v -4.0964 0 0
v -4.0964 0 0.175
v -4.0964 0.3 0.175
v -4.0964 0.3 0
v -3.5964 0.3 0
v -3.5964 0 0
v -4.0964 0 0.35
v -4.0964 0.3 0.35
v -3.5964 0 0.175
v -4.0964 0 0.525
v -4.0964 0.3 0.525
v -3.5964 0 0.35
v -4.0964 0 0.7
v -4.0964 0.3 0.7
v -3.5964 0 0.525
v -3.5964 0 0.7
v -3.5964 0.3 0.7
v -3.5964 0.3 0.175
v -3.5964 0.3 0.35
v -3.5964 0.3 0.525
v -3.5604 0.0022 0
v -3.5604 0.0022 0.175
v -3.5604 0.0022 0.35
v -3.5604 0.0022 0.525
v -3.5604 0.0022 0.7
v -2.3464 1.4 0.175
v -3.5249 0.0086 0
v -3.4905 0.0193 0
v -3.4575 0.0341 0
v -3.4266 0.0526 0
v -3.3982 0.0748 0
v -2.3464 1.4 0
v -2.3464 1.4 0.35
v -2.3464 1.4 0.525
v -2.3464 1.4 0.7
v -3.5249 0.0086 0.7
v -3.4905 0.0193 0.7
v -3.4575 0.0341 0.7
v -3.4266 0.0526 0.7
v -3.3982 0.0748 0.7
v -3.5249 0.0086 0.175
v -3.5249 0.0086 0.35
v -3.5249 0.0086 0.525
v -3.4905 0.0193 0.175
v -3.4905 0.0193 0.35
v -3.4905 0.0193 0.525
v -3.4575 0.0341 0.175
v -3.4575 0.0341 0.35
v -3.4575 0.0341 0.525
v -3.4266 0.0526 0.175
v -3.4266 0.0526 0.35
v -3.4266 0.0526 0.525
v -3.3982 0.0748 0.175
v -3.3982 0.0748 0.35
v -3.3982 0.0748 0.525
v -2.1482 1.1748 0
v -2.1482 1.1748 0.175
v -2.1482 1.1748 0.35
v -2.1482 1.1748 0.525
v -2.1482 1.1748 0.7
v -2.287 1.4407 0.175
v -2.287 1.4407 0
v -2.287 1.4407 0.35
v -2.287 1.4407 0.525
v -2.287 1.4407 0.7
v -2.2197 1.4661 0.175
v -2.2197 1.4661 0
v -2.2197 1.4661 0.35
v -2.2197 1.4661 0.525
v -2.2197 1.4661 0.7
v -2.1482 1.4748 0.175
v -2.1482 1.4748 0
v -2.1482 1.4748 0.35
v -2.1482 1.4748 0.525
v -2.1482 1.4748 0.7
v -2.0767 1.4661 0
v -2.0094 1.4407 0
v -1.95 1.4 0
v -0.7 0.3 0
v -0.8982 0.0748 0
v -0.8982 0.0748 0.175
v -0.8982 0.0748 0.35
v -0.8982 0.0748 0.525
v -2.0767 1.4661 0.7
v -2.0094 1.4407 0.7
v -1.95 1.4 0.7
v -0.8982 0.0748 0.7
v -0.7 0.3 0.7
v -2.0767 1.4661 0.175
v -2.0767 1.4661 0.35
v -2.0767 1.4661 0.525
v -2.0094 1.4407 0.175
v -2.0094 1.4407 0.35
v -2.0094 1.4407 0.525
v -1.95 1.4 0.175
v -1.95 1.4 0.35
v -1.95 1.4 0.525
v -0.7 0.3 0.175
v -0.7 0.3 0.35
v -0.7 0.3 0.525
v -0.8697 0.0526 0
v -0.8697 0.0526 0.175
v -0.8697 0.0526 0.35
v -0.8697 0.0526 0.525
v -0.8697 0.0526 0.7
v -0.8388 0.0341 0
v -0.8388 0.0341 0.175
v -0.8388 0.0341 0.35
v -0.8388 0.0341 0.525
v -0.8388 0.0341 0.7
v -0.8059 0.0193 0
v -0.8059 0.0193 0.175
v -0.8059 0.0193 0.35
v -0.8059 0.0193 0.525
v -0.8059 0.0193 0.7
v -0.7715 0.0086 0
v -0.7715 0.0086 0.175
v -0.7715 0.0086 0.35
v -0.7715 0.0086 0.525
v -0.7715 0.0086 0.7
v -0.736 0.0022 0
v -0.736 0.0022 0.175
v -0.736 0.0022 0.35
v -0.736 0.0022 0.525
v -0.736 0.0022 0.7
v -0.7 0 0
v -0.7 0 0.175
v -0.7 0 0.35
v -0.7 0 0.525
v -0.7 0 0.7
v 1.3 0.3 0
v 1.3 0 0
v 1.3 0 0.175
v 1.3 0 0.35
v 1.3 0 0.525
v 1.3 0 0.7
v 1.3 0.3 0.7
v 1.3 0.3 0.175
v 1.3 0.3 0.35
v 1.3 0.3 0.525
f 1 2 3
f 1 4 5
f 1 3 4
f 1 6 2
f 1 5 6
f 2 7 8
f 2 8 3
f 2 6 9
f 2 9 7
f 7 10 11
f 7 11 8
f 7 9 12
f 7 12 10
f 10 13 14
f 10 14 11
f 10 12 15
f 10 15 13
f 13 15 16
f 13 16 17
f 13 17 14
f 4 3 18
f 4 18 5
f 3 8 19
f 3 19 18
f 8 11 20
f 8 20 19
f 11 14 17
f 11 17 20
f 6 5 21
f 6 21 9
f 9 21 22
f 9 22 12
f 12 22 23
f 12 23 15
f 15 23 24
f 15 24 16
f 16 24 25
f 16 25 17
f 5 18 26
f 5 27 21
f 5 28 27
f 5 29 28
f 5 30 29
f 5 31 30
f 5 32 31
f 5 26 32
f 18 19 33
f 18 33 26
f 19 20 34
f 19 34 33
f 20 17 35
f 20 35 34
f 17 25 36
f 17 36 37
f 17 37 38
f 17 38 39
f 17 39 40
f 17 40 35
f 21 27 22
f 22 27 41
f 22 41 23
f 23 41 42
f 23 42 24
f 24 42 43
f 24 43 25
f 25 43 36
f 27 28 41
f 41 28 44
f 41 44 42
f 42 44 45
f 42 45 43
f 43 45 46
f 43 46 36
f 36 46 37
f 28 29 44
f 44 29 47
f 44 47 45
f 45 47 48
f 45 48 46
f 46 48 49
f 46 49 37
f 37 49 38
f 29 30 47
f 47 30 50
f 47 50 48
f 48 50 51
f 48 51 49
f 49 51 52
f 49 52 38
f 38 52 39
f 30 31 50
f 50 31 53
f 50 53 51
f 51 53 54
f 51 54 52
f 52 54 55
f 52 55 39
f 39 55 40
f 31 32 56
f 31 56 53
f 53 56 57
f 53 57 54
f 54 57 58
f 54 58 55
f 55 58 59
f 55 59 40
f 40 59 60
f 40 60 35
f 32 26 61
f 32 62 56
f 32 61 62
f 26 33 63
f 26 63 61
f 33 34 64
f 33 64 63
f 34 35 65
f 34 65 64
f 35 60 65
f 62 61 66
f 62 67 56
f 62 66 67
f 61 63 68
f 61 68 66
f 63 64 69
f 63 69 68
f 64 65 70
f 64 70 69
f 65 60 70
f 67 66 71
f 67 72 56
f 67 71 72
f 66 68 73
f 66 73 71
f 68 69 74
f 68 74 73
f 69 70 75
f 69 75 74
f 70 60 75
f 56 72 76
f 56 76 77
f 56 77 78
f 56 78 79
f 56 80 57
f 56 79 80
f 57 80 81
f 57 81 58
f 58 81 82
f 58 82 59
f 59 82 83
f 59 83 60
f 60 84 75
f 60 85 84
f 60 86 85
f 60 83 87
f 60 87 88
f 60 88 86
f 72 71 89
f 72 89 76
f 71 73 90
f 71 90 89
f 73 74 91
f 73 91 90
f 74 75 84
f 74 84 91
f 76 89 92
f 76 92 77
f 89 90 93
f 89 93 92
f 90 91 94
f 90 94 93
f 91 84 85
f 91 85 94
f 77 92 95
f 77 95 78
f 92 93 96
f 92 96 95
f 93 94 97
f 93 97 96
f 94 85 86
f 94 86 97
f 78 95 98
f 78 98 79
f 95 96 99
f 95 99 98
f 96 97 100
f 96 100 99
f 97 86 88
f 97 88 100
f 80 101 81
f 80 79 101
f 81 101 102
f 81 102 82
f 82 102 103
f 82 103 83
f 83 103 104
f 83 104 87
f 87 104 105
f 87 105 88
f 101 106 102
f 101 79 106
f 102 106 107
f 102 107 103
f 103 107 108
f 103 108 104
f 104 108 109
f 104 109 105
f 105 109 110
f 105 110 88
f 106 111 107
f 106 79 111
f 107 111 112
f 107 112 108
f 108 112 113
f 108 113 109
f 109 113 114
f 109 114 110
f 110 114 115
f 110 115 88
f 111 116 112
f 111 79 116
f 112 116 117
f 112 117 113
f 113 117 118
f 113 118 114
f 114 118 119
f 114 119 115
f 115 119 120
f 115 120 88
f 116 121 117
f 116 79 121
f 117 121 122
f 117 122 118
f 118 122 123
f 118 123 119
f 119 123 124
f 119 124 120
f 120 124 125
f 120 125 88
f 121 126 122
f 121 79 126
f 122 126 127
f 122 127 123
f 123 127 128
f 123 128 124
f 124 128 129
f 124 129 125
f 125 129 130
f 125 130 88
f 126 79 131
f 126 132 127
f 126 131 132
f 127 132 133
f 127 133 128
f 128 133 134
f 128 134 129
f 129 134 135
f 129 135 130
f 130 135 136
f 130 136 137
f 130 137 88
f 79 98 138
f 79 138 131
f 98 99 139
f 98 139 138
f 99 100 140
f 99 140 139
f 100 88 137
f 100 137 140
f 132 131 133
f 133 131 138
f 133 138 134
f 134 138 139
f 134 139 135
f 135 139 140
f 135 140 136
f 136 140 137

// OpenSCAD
// Start: lazy_union
default_5_default_5();
// End: lazy_union

// Modules.

// 'PartMaterial undef-default - default 5.0'
module default_5_default_5() {
  // 'None : _combine_solids_and_holes'
  union() {
    // 'default : _combine_solids_and_holes'
    union() {
      // 'terminal : _combine_solids_and_holes'
      union() {
        // 'terminal'
        linear_extrude(height=0.7, twist=0.0, slices=4, scale=[1.0, 1.0]) {
          polygon(points=[[0.0, 0.0], [-0.7, 0.0], [-0.7359958083311317, 0.00216732586469226], [-0.7714715190194863, 0.008637988116077133], [-0.8059145492294425, 0.019318493196427367], [-0.8388272371594507, 0.03405452020635208], [-0.8697340326773294, 0.05263315066264182], [-0.8981883684676073, 0.07478594492317342], [-2.1481883684676077, 1.174785944923174], [-3.3981883684676086, 0.07478594492317447], [-3.426642704257887, 0.0526331506626429], [-3.457549499775765, 0.034054520206353245], [-3.4904621877057735, 0.019318493196428588], [-3.5249052179157294, 0.00863798811607841], [-3.560380928604084, 0.0021673258646935367], [-3.5963767369352158, 1.27675647831893e-15], [-4.096376736935216, 1.1906291571089884e-15], [-4.096376736935216, 0.30000000000000115], [-3.596376736935216, 0.3000000000000012], [-2.3463767369352158, 1.400000000000001], [-2.287015605627059, 1.4407314247168224], [-2.219659887487095, 1.466147956807097], [-2.1481883684676086, 1.4747859449231742], [-2.0767168494481223, 1.466147956807097], [-2.009361131308158, 1.4407314247168221], [-1.950000000000001, 1.4000000000000008], [-0.7000000000000015, 0.2999999999999998], [1.2999999999999983, 0.29999999999999827], [1.299999999999998, 0.0]]);
        }
      }
      // 'cage'
      %multmatrix(m=[[-1.0, 7.771561172376097e-16, 0.0, 1.299999999999998], [7.771561172376097e-16, 1.0, 0.0, -1.7208456881689926e-15], [0.0, 0.0, -1.0, 0.7], [0.0, 0.0, 0.0, 1.0]]) {
        // 'cage'
        color(c=[0.0, 1.0, 0.35, 0.4]) {
          // 'cage : _combine_solids_and_holes'
          union() {
            // 'cage'
            cube(size=[5.396376736935214, 1.474785944923176, 0.7]);
          }
        }
      }
    }
  }
} // end module default_5_default_5
